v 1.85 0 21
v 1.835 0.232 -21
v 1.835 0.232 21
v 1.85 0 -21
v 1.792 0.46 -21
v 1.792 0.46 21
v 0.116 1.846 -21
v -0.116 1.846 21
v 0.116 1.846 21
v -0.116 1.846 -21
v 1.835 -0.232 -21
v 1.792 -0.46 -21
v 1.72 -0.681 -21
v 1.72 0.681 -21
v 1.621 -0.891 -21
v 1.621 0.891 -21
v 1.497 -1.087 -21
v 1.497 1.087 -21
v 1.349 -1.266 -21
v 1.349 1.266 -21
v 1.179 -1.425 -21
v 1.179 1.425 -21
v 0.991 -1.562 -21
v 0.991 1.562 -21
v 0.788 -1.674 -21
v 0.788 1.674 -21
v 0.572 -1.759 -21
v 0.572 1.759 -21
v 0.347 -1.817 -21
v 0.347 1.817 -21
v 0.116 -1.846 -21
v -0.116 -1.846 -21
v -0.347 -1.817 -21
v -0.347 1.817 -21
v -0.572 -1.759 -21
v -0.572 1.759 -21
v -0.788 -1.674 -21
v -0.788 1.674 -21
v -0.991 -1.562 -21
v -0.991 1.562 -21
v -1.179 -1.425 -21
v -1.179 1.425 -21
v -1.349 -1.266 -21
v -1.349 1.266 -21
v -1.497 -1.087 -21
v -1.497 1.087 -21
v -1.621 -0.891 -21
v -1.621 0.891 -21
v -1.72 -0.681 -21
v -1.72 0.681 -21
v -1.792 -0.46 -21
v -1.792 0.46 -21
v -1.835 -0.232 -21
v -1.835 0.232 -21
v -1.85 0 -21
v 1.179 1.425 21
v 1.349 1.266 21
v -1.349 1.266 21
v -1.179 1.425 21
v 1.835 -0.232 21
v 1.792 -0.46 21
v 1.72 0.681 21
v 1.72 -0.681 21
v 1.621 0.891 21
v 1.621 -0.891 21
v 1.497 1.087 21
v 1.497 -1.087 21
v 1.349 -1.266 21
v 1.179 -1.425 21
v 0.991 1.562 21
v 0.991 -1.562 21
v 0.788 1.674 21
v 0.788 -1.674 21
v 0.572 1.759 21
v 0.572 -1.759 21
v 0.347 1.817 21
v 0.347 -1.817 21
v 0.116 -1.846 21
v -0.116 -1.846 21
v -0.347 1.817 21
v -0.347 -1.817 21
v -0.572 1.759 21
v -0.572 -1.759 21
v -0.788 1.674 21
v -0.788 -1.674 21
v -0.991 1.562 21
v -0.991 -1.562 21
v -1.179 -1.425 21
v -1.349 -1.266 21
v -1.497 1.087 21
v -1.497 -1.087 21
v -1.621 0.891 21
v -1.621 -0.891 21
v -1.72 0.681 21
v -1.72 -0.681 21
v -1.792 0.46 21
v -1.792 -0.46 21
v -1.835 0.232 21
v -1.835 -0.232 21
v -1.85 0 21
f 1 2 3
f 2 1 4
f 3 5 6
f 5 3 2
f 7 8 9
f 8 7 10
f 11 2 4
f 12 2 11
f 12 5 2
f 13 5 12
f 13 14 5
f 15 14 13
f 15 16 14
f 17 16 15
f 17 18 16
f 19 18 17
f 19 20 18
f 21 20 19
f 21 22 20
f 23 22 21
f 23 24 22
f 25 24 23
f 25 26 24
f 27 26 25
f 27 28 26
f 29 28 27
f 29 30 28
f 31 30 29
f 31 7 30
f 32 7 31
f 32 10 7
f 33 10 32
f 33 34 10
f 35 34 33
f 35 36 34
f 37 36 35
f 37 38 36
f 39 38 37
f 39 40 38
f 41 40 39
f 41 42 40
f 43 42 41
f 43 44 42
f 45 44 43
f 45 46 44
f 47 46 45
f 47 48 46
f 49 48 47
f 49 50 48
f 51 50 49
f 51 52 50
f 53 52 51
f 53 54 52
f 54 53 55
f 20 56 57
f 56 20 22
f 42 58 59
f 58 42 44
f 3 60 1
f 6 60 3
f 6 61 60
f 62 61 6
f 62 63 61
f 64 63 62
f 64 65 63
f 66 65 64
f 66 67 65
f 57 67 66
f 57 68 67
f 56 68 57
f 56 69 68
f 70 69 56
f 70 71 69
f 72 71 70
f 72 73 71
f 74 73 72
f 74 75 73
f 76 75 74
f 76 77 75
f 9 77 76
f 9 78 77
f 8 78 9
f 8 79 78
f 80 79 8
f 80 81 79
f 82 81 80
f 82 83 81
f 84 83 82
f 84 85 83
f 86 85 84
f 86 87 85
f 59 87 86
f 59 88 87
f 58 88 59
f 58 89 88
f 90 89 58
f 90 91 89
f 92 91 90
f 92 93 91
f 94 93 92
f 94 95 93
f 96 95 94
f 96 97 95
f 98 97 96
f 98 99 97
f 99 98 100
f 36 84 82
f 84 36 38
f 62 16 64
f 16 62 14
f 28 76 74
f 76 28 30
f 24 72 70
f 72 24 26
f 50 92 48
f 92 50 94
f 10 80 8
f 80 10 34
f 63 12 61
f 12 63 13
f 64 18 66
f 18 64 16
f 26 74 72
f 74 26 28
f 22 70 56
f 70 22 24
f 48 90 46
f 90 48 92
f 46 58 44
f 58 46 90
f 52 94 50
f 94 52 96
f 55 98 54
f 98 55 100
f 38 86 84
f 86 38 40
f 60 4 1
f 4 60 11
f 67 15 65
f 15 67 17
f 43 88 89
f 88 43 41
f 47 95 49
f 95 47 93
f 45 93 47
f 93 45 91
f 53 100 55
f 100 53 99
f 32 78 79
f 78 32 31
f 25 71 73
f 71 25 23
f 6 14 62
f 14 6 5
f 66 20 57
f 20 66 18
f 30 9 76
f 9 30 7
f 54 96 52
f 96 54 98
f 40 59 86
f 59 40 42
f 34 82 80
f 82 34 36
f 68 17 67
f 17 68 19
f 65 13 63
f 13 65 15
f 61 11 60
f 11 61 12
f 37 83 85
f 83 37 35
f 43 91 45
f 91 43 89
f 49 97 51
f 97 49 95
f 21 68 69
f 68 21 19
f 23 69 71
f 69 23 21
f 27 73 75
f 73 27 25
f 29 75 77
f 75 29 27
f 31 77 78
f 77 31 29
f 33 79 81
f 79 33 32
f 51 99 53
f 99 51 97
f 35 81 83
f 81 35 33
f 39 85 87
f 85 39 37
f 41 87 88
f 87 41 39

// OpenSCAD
$fn = 50;


difference() {
	union() {
		translate(v = [0, 0, -21.0000000000]) {
			cylinder(h = 42, r = 1.8500000000);
		}
	}
	union() {
		translate(v = [0, 0, -100.0000000000]) {
			cylinder(h = 200, r = 0);
		}
	}
}
